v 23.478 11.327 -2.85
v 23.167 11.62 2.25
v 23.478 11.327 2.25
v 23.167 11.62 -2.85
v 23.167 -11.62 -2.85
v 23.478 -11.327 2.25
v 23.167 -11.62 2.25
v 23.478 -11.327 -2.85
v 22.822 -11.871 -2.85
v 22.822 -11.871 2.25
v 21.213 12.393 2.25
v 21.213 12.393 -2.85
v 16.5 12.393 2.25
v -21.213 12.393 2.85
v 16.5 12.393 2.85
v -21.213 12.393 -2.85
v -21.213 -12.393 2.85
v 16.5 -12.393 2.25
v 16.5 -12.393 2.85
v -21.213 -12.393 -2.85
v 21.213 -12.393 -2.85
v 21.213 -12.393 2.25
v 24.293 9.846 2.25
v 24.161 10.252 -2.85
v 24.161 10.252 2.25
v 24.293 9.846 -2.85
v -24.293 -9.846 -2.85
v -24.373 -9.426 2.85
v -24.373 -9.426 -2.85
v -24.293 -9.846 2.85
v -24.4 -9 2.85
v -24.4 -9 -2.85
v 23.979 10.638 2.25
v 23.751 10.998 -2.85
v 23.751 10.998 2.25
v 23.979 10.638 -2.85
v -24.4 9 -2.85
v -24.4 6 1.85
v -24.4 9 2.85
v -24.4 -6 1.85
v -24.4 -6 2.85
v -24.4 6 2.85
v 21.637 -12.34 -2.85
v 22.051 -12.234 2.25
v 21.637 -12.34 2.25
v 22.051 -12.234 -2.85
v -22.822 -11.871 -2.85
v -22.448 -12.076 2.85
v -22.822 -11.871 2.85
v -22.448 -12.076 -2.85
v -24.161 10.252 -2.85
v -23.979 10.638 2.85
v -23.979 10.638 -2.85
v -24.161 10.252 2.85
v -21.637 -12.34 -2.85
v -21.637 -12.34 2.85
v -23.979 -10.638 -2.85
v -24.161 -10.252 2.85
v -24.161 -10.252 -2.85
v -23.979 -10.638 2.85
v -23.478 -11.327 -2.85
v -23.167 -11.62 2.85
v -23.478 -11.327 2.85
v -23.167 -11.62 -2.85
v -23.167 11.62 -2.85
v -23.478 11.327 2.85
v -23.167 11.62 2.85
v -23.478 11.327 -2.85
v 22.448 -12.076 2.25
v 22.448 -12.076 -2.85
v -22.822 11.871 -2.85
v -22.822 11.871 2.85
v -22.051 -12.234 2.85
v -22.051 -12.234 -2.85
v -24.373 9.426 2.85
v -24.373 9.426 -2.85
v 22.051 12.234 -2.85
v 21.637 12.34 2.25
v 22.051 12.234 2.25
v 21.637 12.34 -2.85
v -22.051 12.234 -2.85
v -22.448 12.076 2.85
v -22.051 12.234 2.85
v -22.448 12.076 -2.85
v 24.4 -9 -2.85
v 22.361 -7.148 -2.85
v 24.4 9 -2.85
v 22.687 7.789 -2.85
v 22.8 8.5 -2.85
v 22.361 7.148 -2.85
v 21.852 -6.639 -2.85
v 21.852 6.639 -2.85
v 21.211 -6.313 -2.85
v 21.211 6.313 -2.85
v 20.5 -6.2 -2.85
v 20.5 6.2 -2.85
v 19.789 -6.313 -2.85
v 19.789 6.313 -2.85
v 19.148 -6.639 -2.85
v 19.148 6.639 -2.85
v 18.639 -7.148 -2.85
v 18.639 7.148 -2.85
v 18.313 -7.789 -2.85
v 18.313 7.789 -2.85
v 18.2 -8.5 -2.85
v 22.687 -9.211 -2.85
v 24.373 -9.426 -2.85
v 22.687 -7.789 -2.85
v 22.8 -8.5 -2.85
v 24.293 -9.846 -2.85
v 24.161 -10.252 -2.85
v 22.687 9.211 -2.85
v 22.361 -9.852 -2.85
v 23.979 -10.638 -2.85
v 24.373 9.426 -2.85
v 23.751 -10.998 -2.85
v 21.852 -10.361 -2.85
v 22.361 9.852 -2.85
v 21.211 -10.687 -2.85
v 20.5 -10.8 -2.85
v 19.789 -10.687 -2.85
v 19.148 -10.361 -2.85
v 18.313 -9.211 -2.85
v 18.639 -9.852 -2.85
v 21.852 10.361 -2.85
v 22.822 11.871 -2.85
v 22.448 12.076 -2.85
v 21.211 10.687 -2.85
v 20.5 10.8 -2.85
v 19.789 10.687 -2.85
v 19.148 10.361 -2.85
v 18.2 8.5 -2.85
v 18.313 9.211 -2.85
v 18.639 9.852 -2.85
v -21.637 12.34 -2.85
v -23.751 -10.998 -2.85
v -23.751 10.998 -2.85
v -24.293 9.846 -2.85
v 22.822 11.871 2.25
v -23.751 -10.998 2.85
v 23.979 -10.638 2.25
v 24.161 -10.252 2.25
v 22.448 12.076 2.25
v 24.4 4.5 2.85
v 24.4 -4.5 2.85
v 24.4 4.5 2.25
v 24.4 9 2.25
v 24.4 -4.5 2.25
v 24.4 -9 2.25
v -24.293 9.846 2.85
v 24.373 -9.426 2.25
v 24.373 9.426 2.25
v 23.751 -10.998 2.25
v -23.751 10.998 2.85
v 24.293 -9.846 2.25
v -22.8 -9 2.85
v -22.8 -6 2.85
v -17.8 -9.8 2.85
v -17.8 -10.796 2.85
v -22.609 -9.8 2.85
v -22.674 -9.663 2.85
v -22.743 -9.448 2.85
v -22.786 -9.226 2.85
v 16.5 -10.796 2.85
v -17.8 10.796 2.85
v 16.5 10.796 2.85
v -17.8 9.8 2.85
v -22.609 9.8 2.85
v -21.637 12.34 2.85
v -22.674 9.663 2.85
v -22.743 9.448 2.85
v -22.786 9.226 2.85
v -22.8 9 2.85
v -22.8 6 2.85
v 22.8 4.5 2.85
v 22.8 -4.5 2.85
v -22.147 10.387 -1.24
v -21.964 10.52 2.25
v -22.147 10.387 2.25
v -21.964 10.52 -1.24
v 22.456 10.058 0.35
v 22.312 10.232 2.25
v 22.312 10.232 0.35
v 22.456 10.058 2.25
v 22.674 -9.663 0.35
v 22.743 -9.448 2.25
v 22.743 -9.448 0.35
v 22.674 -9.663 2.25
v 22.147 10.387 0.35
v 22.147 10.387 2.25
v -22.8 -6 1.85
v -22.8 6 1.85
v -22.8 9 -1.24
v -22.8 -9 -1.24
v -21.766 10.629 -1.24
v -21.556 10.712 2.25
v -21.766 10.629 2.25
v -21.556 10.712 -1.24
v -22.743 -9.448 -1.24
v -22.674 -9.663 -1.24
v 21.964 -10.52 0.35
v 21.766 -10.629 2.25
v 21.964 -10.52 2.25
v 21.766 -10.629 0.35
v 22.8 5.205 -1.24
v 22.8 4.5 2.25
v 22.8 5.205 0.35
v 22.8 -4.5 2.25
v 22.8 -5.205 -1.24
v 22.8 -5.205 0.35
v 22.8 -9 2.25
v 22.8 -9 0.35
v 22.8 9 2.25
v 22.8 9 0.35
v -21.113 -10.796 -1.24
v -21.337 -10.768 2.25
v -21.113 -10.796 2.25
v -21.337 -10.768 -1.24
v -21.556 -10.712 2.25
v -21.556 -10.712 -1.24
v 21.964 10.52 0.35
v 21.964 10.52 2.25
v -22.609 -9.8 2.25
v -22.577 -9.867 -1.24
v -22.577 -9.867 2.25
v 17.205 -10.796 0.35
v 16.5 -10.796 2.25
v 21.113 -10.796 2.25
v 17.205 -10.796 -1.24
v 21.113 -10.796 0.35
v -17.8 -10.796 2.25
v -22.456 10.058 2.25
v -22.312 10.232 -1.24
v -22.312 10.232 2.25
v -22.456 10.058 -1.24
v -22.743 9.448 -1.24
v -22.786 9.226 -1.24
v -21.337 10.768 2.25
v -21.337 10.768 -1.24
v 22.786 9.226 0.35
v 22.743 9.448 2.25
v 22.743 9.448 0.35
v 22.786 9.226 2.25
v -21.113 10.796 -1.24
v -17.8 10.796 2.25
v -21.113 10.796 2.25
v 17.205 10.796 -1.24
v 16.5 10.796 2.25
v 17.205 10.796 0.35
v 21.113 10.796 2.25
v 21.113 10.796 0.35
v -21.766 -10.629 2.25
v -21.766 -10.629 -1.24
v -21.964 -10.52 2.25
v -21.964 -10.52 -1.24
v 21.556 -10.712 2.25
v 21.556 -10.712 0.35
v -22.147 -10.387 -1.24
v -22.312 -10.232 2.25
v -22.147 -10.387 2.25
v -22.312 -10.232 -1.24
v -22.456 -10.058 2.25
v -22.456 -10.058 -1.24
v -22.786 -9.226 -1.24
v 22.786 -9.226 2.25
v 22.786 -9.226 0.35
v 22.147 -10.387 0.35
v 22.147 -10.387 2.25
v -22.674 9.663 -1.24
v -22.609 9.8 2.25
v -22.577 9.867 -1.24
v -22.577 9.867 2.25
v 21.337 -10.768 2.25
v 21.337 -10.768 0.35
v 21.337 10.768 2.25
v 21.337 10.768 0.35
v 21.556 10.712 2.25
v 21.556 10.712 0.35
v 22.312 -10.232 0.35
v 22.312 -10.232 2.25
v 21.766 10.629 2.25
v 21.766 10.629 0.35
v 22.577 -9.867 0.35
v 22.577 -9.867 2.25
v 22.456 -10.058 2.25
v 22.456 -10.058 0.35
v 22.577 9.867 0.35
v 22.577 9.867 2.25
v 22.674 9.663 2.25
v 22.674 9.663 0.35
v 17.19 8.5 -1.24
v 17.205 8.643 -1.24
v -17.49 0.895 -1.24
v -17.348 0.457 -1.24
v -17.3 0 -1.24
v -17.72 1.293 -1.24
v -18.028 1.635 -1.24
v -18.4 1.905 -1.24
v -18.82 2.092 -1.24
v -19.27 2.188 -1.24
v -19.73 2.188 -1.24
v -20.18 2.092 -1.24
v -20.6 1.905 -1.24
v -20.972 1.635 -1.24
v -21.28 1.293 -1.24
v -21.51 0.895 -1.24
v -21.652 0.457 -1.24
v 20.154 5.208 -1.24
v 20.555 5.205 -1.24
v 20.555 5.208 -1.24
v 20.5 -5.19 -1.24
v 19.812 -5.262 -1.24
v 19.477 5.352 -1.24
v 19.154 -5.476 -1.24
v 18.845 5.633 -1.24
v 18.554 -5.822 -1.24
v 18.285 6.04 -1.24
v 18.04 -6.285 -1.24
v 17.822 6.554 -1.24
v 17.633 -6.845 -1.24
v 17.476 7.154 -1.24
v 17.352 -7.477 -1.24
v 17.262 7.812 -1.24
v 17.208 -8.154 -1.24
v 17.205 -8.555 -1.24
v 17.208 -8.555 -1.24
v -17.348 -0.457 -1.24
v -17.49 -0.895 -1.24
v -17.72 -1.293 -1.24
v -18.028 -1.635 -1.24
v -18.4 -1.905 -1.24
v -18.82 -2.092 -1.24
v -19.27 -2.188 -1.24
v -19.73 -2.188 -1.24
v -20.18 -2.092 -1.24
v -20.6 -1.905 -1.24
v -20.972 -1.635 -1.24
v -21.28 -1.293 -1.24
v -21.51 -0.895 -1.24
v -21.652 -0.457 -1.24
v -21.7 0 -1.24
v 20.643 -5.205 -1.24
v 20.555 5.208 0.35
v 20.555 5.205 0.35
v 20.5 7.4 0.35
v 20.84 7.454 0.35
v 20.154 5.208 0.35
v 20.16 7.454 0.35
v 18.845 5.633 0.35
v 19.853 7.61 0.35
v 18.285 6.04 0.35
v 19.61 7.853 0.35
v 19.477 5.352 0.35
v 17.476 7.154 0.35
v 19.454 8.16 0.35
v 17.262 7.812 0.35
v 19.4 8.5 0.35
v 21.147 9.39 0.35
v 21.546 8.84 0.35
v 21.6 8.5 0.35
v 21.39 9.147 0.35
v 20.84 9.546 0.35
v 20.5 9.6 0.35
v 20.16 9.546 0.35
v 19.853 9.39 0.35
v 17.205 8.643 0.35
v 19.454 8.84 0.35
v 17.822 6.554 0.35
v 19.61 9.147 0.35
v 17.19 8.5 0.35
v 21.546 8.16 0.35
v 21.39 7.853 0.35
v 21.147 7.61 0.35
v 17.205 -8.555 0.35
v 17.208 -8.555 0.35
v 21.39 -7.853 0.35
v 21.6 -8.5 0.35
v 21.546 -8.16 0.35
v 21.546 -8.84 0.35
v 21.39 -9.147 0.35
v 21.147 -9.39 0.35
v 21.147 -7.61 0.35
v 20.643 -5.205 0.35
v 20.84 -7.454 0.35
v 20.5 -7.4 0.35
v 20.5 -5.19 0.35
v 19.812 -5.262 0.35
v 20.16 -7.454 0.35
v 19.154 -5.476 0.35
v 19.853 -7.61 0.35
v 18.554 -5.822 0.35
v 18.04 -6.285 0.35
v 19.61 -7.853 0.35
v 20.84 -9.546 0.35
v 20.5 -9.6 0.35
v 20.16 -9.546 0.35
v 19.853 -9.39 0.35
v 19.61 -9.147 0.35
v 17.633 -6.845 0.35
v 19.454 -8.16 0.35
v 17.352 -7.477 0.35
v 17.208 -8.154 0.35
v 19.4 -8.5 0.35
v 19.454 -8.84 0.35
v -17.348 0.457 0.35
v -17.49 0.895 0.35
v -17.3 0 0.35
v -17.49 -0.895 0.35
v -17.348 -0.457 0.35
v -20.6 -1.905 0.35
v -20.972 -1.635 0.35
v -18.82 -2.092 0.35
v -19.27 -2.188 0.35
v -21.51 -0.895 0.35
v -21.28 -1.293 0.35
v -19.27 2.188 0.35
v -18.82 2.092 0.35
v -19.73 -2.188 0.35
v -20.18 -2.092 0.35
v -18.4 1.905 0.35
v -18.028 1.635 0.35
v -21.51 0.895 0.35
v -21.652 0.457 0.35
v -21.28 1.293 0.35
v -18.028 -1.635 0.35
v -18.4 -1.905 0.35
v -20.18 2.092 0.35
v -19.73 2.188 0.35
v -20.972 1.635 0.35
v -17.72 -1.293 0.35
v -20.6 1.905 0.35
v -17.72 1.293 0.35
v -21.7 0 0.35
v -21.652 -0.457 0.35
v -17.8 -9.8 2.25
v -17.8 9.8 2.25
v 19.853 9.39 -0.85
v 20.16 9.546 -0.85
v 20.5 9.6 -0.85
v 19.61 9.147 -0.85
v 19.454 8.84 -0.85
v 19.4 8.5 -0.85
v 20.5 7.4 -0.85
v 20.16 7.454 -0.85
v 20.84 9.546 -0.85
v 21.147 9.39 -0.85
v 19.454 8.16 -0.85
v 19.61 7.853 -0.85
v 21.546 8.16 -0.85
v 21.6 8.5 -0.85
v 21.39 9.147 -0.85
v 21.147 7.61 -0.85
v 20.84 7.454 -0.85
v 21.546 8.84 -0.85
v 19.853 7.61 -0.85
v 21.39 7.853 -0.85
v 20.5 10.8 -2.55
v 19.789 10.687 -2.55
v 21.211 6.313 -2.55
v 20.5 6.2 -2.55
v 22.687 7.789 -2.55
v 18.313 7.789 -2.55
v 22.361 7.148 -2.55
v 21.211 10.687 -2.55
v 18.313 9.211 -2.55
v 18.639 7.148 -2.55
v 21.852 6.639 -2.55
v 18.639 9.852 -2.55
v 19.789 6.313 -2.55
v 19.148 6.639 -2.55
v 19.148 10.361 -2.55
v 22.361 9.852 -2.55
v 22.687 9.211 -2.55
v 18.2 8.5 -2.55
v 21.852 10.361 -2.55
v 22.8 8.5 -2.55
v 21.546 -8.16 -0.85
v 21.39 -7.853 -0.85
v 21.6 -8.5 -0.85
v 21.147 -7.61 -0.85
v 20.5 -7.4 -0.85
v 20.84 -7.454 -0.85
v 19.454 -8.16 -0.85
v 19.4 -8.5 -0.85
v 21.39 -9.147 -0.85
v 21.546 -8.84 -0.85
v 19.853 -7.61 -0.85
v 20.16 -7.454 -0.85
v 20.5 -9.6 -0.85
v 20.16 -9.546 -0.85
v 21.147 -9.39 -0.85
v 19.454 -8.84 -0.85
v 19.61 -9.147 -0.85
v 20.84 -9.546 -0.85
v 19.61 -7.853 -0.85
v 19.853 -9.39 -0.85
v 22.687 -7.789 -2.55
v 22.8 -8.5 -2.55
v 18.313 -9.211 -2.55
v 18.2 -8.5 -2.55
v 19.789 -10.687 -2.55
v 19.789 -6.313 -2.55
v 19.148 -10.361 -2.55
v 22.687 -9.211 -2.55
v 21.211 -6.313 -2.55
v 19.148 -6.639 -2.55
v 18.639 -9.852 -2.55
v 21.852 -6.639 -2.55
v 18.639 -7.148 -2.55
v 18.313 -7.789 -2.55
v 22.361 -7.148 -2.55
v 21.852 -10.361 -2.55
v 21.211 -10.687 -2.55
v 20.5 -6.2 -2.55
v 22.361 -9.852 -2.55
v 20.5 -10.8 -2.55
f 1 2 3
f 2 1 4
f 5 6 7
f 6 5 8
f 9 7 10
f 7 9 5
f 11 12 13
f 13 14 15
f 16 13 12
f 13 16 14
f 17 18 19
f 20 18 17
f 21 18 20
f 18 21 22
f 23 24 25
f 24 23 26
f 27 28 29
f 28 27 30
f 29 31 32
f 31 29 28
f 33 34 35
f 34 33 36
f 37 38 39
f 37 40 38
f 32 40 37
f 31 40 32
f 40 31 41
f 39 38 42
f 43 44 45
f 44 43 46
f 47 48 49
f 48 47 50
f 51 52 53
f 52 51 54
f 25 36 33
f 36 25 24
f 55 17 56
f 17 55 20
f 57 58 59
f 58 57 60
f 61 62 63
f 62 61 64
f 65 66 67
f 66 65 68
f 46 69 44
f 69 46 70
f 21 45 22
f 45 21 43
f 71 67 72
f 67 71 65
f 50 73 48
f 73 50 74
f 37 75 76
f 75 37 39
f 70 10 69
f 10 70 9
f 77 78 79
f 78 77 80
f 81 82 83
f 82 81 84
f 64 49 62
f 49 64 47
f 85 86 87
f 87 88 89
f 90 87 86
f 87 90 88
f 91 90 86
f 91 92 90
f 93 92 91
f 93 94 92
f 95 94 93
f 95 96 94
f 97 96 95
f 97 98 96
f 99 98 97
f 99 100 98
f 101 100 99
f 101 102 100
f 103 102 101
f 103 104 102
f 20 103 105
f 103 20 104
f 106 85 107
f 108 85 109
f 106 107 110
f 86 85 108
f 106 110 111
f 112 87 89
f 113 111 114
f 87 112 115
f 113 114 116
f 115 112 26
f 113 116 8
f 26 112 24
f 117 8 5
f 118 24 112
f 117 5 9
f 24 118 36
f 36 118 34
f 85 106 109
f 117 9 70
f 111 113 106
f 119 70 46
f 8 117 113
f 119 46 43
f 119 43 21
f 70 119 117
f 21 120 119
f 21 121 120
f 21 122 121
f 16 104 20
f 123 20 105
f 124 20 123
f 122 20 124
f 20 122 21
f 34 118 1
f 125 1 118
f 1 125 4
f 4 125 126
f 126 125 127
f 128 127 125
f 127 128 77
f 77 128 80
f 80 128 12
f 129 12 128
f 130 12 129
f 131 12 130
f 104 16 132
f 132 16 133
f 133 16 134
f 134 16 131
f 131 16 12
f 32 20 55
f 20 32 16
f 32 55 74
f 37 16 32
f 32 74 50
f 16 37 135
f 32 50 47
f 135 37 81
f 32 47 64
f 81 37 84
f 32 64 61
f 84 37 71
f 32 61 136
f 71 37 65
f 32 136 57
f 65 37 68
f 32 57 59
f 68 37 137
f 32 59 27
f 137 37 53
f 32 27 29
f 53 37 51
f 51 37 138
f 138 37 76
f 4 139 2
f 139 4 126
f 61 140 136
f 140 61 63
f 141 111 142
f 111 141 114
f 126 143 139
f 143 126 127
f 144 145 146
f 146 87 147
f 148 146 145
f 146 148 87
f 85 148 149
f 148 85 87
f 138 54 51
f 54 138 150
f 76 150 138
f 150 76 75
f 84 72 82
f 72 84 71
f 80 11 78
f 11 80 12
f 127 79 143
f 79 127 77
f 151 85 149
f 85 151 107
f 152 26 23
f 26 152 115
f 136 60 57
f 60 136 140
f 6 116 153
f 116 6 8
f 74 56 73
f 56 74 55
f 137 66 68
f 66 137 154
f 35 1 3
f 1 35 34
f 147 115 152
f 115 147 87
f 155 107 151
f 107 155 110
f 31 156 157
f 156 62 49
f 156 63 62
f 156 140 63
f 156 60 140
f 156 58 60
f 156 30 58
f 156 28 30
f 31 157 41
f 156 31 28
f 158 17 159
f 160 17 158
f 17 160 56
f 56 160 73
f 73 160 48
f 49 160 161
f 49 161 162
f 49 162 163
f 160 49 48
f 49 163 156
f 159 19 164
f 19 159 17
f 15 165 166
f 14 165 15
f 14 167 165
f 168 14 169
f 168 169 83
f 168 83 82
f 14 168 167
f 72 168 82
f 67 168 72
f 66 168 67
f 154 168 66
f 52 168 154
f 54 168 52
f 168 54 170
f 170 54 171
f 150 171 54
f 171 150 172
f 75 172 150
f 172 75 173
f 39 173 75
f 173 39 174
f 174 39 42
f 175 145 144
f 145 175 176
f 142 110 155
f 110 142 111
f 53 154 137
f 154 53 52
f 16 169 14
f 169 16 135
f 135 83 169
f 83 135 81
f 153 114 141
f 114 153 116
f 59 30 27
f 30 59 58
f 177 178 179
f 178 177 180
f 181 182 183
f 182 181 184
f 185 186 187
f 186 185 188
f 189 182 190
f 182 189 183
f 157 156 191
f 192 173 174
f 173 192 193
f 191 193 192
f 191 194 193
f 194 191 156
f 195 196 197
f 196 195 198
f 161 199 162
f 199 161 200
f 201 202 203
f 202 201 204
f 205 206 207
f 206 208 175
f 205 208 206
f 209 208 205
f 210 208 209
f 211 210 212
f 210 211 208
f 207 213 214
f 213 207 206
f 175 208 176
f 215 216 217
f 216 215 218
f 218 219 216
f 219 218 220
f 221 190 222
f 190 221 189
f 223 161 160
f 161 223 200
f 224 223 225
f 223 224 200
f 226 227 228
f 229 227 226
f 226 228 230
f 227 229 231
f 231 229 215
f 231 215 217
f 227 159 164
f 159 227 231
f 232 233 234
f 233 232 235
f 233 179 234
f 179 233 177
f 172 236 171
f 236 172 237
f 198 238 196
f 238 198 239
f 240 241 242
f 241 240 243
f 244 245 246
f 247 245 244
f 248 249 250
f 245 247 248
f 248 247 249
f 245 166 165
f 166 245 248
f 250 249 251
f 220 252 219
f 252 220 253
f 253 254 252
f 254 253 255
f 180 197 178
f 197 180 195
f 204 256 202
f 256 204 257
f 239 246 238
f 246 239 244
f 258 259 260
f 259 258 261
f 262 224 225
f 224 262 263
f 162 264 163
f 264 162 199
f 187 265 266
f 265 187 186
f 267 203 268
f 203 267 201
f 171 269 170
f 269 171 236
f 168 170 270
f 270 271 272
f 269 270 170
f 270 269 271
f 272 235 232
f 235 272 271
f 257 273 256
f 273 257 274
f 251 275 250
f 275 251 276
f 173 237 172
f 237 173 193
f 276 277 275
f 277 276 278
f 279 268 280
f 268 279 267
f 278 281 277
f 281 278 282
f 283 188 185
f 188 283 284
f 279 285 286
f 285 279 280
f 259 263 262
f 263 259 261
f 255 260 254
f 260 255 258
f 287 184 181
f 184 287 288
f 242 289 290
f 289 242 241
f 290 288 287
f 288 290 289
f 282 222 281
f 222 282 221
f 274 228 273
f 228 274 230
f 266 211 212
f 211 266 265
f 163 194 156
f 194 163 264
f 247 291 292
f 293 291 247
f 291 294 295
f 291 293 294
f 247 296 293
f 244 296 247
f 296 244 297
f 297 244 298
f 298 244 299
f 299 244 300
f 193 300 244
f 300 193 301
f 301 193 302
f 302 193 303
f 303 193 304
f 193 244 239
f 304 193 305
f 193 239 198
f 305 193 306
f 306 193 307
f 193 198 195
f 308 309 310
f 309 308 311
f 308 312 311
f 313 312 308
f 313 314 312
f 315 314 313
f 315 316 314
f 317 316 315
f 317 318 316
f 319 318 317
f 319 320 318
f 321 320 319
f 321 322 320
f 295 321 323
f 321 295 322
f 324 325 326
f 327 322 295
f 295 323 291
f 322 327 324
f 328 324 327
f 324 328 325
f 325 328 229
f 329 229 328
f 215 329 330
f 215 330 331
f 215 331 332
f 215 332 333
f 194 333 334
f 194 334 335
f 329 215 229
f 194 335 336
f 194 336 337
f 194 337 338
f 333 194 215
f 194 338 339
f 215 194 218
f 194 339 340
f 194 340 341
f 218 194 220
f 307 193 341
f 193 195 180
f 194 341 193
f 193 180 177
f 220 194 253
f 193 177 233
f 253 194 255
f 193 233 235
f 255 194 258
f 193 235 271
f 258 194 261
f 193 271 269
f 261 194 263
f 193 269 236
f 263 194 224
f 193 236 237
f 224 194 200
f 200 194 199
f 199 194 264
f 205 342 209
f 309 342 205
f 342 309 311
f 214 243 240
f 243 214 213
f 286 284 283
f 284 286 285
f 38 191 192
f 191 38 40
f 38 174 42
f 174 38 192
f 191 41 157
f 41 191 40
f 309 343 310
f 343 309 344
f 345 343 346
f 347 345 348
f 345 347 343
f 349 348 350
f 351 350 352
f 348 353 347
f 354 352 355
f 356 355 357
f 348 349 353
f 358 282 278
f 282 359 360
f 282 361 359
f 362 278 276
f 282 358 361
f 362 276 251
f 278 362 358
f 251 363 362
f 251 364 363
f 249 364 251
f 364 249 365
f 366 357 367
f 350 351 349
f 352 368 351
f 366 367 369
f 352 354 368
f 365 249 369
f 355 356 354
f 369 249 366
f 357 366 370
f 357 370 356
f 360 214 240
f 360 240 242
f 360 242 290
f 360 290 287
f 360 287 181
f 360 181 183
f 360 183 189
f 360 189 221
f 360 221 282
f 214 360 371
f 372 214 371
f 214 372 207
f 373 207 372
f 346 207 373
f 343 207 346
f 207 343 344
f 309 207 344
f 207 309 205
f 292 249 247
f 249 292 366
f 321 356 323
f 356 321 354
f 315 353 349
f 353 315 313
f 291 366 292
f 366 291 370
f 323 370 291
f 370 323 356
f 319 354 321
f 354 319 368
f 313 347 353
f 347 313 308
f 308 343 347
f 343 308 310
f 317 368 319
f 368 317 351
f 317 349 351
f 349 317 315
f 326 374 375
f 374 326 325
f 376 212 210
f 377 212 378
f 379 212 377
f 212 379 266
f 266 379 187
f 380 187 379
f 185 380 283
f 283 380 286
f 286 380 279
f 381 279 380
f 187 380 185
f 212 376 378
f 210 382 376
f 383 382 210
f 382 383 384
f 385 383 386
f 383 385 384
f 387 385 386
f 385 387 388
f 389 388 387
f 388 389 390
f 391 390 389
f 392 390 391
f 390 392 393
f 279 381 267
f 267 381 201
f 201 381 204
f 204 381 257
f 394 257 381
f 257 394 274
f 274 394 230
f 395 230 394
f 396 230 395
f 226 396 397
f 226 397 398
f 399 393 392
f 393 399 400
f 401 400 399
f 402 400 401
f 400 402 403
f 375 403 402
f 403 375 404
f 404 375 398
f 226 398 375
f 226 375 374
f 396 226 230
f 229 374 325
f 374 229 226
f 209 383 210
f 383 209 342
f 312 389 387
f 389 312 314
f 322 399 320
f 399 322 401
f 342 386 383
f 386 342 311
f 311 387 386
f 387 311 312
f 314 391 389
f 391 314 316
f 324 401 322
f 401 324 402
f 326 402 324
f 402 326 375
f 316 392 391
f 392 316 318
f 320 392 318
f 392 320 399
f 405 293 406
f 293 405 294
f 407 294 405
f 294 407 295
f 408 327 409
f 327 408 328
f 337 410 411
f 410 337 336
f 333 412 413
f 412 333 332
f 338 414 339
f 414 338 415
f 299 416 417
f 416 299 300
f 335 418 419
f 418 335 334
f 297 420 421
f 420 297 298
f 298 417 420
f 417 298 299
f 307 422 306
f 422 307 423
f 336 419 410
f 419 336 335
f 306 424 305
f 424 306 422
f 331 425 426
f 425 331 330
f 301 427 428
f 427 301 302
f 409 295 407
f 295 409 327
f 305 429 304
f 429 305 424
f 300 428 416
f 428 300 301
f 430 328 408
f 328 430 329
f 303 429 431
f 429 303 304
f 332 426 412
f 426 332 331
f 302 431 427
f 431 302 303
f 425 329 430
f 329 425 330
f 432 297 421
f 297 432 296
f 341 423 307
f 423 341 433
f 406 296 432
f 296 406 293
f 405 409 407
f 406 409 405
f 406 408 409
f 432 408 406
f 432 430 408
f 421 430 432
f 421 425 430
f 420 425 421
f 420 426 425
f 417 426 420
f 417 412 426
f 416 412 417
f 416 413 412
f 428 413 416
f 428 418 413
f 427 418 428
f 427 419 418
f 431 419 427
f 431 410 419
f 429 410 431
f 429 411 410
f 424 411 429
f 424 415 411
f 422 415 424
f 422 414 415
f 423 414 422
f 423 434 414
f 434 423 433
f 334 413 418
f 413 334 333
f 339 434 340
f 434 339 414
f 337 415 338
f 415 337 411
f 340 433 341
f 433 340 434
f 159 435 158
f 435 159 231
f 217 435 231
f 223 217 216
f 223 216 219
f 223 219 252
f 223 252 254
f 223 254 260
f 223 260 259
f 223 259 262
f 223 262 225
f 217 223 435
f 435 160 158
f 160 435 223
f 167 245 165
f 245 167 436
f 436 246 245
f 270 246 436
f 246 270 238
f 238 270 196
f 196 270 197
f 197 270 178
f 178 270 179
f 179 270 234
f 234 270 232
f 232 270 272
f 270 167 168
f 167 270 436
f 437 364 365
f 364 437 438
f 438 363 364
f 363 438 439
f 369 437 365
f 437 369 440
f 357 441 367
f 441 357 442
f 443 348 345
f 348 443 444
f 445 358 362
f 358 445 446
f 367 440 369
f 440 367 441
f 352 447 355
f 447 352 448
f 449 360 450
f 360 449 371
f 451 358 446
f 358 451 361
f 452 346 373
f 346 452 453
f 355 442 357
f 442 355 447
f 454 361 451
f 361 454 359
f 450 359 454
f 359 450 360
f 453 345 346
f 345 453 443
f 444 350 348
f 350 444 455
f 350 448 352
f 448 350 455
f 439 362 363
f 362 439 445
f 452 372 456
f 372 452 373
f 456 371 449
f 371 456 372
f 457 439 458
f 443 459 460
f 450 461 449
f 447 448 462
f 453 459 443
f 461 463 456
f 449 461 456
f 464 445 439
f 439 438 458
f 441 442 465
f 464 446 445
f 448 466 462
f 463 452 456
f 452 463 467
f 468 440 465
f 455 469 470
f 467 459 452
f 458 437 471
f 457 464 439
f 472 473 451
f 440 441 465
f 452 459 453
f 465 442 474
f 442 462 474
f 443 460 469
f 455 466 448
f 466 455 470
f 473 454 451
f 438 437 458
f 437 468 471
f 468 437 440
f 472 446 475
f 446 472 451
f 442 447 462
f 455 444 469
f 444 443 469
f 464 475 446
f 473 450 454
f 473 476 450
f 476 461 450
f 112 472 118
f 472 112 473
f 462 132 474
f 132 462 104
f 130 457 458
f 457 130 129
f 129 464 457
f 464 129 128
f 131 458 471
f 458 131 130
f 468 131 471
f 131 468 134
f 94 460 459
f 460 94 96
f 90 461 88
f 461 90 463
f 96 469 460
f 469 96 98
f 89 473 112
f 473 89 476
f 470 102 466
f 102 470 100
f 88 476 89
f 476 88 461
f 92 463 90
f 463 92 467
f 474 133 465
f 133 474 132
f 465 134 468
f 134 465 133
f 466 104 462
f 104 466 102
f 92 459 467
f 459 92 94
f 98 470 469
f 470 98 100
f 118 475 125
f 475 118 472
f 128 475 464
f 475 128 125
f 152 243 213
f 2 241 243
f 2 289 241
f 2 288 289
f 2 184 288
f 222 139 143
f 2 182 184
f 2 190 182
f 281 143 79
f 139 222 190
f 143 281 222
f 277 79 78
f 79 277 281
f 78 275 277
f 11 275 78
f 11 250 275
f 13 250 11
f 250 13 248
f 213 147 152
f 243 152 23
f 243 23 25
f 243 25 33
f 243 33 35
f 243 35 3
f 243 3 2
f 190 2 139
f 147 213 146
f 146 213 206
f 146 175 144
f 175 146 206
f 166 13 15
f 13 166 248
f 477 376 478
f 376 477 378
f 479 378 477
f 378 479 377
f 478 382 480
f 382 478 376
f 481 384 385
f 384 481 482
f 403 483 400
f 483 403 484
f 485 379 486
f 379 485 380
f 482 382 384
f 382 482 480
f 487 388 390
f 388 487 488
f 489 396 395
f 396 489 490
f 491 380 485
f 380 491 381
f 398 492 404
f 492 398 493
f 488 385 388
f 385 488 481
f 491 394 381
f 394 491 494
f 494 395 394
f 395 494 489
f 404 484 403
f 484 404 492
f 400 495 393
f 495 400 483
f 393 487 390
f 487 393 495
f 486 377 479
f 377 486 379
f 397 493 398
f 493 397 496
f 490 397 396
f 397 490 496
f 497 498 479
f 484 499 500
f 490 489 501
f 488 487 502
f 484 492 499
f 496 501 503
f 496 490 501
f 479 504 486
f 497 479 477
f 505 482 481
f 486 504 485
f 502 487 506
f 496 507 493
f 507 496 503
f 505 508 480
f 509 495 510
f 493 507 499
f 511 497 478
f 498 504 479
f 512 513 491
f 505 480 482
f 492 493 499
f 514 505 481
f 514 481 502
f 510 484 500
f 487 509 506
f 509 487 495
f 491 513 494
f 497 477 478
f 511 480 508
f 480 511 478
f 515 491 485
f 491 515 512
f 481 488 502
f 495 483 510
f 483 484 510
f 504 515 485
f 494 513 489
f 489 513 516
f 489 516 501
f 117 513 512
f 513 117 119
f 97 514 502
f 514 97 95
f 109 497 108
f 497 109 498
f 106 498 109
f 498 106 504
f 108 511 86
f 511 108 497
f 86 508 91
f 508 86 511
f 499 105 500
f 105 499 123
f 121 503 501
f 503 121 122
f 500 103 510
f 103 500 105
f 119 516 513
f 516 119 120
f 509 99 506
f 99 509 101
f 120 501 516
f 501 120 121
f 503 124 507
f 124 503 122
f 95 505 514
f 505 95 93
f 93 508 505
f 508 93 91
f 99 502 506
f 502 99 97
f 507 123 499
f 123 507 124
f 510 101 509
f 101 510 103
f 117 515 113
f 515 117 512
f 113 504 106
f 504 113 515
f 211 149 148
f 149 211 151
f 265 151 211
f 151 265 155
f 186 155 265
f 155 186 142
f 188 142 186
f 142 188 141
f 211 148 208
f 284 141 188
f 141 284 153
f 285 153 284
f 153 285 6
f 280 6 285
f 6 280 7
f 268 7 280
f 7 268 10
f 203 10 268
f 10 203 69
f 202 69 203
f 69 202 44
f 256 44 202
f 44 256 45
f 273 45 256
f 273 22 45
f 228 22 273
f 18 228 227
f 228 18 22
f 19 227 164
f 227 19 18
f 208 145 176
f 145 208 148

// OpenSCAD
padding = 1.6; // wall width
// a little space for inserting PCB, 0.5 is good for PETG
// 0.3 is good for PLA with 0.6 nozzle
board_margin = 0.3;
side_padding = padding + board_margin;
board_2_fook_margin = 0.3;
// board_depth = 1.6; // 0.8 or 1.6
board_under_space = 1.6;
board_corner_radius = 1.5;
fook_height = 0.6;
fook_length = 5;
fook_width = 1.0;
pico_width = 21;
pico_offset = 2;
screw_radius = 1.1;
screw_pillor_radius = 3.31;
pico_pillor_radius = 2.2;
screw_pillor_offset = 2.0;
screw_head_height = 1.7;
screw_head_radius = 2.3;
screw_head_margin = 0.3;
outer_corner_radius = board_corner_radius + side_padding;

// base bucket
module outer_bucket(board_w, board_h, depth) {
    minkowski()
    {
        cylinder_height = 1;
        cube([
            board_w + side_padding * 2 - outer_corner_radius * 2, 
            board_h + side_padding * 2 - outer_corner_radius * 2, 
            cylinder_height
        ], center=true);
        cylinder(
            r=outer_corner_radius,
            h=depth - cylinder_height, 
            center=true,
            $fn=50
        );
    }
}
// hole for board
module board_hole(board_w, board_h, depth) {
    minkowski()
    {
        cylinder_height = 1;
        cube([
            board_w + board_margin * 2 - (board_corner_radius + board_margin) * 2, 
            board_h + board_margin * 2 - (board_corner_radius + board_margin) * 2, 
            cylinder_height
        ], center=true);
        cylinder(
            r=board_corner_radius + board_margin,
            h=depth - cylinder_height - padding, 
            center=true,
            $fn=50
        );
    }
}

// hole for usb
module usb_hole() {
    cube([12, 12, 2], center=true); // usb hole
}

module screw_pillar(depth, withcube) {
    translate([0, 0, - (depth - padding) / 2 + board_under_space]) {
        cylinder(r=screw_pillor_radius, h=board_under_space, center=true, $fn=30);
    }
    if (withcube) {
        translate([- screw_pillor_radius + padding, padding + 0.04, - (depth - padding) / 2 + board_under_space]) {
            cube([screw_pillor_radius, screw_pillor_radius, board_under_space], center=true);
        }
        translate([padding + 0.04, - screw_pillor_radius + padding, - (depth - padding) / 2 + board_under_space]) {
            cube([screw_pillor_radius, screw_pillor_radius, board_under_space], center=true);
        }
    }
}

module screw_hole(depth) {
    hole_height = padding + board_under_space;
    translate([0, 0, - (depth - hole_height) / 2]) {
        cylinder(r=screw_radius, h=hole_height, center=true, $fn=20);
    }
    translate([0, 0, - (depth - screw_head_height) / 2 + screw_head_margin]) {
        #cylinder(r1=screw_head_radius, r2=screw_radius, h=screw_head_height, center=true, $fn=20);
    }
    translate([0, 0, - (depth - screw_head_margin) / 2]) {
        cylinder(r=screw_head_radius, h=screw_head_margin, center=true, $fn=20);
    }
    translate([0, 0, (depth - fook_height) / 2]) {
        rotate([0, 0, 0]) {
            cube([8, 8, fook_height], center=true, $fn=20);
        }
    }
}



module main(board_w, board_h, board_d) {
    depth = fook_height + board_d + board_2_fook_margin + board_under_space + padding;
    difference() {
        union() {
            difference() {
                outer_bucket(board_w, board_h, depth);
                translate([0, 0, padding / 2 + 0.01]) {
                    board_hole(board_w, board_h, depth);
                }
                // usb hole
                translate([
                    - board_w / 2, 
                    board_h / 2 - pico_width / 2, 
                    depth / 2
                ]) {
                    usb_hole();
                }
            }
            // center pillor under pico
            translate([
                - board_w / 2 + screw_pillor_offset + 1, 
                board_h / 2 - pico_width / 2, 
                - (depth - padding) / 2 + board_under_space
            ]) {
                cylinder(r=pico_pillor_radius, h=board_under_space, center=true, $fn=30);
            }

            // fooks
            translate([
                - (board_w - fook_length) / 2 - board_margin, 
                - (board_h - fook_width) / 2 - board_margin, 
                (depth - fook_height) / 2
                ]) {
                cube([fook_length, fook_width, fook_height], center=true);
            }
            
            translate([
                - (board_w - fook_length) / 2 - board_margin, 
                (board_h - fook_width) / 2 + board_margin, 
                (depth - fook_height) / 2
                ]) {
                cube([fook_length, fook_width, fook_height], center=true);
            }
            // screw_pillar
            translate([board_w / 2 - screw_pillor_offset, board_h / 2 - screw_pillor_offset, 0]) {
                rotate([0, 0, 180]) {
                    screw_pillar(depth, true);
                }
            }
            
            translate([board_w / 2 - screw_pillor_offset, - board_h / 2 + screw_pillor_offset, 0]) {
                rotate([0, 0, 90]) {
                    screw_pillar(depth, true);
                }
            }

        }

        translate([board_w / 2 - screw_pillor_offset, board_h / 2 - screw_pillor_offset, 0]) {
            rotate([0, 0, 90]) {
                screw_hole(depth);
            }
        }
        translate([board_w / 2 - screw_pillor_offset, - board_h / 2 + screw_pillor_offset, 0]) {
            rotate([0, 0, 0]) {
                screw_hole(depth);
            }
        }

    }
}

main(45, 21, 1.6);
